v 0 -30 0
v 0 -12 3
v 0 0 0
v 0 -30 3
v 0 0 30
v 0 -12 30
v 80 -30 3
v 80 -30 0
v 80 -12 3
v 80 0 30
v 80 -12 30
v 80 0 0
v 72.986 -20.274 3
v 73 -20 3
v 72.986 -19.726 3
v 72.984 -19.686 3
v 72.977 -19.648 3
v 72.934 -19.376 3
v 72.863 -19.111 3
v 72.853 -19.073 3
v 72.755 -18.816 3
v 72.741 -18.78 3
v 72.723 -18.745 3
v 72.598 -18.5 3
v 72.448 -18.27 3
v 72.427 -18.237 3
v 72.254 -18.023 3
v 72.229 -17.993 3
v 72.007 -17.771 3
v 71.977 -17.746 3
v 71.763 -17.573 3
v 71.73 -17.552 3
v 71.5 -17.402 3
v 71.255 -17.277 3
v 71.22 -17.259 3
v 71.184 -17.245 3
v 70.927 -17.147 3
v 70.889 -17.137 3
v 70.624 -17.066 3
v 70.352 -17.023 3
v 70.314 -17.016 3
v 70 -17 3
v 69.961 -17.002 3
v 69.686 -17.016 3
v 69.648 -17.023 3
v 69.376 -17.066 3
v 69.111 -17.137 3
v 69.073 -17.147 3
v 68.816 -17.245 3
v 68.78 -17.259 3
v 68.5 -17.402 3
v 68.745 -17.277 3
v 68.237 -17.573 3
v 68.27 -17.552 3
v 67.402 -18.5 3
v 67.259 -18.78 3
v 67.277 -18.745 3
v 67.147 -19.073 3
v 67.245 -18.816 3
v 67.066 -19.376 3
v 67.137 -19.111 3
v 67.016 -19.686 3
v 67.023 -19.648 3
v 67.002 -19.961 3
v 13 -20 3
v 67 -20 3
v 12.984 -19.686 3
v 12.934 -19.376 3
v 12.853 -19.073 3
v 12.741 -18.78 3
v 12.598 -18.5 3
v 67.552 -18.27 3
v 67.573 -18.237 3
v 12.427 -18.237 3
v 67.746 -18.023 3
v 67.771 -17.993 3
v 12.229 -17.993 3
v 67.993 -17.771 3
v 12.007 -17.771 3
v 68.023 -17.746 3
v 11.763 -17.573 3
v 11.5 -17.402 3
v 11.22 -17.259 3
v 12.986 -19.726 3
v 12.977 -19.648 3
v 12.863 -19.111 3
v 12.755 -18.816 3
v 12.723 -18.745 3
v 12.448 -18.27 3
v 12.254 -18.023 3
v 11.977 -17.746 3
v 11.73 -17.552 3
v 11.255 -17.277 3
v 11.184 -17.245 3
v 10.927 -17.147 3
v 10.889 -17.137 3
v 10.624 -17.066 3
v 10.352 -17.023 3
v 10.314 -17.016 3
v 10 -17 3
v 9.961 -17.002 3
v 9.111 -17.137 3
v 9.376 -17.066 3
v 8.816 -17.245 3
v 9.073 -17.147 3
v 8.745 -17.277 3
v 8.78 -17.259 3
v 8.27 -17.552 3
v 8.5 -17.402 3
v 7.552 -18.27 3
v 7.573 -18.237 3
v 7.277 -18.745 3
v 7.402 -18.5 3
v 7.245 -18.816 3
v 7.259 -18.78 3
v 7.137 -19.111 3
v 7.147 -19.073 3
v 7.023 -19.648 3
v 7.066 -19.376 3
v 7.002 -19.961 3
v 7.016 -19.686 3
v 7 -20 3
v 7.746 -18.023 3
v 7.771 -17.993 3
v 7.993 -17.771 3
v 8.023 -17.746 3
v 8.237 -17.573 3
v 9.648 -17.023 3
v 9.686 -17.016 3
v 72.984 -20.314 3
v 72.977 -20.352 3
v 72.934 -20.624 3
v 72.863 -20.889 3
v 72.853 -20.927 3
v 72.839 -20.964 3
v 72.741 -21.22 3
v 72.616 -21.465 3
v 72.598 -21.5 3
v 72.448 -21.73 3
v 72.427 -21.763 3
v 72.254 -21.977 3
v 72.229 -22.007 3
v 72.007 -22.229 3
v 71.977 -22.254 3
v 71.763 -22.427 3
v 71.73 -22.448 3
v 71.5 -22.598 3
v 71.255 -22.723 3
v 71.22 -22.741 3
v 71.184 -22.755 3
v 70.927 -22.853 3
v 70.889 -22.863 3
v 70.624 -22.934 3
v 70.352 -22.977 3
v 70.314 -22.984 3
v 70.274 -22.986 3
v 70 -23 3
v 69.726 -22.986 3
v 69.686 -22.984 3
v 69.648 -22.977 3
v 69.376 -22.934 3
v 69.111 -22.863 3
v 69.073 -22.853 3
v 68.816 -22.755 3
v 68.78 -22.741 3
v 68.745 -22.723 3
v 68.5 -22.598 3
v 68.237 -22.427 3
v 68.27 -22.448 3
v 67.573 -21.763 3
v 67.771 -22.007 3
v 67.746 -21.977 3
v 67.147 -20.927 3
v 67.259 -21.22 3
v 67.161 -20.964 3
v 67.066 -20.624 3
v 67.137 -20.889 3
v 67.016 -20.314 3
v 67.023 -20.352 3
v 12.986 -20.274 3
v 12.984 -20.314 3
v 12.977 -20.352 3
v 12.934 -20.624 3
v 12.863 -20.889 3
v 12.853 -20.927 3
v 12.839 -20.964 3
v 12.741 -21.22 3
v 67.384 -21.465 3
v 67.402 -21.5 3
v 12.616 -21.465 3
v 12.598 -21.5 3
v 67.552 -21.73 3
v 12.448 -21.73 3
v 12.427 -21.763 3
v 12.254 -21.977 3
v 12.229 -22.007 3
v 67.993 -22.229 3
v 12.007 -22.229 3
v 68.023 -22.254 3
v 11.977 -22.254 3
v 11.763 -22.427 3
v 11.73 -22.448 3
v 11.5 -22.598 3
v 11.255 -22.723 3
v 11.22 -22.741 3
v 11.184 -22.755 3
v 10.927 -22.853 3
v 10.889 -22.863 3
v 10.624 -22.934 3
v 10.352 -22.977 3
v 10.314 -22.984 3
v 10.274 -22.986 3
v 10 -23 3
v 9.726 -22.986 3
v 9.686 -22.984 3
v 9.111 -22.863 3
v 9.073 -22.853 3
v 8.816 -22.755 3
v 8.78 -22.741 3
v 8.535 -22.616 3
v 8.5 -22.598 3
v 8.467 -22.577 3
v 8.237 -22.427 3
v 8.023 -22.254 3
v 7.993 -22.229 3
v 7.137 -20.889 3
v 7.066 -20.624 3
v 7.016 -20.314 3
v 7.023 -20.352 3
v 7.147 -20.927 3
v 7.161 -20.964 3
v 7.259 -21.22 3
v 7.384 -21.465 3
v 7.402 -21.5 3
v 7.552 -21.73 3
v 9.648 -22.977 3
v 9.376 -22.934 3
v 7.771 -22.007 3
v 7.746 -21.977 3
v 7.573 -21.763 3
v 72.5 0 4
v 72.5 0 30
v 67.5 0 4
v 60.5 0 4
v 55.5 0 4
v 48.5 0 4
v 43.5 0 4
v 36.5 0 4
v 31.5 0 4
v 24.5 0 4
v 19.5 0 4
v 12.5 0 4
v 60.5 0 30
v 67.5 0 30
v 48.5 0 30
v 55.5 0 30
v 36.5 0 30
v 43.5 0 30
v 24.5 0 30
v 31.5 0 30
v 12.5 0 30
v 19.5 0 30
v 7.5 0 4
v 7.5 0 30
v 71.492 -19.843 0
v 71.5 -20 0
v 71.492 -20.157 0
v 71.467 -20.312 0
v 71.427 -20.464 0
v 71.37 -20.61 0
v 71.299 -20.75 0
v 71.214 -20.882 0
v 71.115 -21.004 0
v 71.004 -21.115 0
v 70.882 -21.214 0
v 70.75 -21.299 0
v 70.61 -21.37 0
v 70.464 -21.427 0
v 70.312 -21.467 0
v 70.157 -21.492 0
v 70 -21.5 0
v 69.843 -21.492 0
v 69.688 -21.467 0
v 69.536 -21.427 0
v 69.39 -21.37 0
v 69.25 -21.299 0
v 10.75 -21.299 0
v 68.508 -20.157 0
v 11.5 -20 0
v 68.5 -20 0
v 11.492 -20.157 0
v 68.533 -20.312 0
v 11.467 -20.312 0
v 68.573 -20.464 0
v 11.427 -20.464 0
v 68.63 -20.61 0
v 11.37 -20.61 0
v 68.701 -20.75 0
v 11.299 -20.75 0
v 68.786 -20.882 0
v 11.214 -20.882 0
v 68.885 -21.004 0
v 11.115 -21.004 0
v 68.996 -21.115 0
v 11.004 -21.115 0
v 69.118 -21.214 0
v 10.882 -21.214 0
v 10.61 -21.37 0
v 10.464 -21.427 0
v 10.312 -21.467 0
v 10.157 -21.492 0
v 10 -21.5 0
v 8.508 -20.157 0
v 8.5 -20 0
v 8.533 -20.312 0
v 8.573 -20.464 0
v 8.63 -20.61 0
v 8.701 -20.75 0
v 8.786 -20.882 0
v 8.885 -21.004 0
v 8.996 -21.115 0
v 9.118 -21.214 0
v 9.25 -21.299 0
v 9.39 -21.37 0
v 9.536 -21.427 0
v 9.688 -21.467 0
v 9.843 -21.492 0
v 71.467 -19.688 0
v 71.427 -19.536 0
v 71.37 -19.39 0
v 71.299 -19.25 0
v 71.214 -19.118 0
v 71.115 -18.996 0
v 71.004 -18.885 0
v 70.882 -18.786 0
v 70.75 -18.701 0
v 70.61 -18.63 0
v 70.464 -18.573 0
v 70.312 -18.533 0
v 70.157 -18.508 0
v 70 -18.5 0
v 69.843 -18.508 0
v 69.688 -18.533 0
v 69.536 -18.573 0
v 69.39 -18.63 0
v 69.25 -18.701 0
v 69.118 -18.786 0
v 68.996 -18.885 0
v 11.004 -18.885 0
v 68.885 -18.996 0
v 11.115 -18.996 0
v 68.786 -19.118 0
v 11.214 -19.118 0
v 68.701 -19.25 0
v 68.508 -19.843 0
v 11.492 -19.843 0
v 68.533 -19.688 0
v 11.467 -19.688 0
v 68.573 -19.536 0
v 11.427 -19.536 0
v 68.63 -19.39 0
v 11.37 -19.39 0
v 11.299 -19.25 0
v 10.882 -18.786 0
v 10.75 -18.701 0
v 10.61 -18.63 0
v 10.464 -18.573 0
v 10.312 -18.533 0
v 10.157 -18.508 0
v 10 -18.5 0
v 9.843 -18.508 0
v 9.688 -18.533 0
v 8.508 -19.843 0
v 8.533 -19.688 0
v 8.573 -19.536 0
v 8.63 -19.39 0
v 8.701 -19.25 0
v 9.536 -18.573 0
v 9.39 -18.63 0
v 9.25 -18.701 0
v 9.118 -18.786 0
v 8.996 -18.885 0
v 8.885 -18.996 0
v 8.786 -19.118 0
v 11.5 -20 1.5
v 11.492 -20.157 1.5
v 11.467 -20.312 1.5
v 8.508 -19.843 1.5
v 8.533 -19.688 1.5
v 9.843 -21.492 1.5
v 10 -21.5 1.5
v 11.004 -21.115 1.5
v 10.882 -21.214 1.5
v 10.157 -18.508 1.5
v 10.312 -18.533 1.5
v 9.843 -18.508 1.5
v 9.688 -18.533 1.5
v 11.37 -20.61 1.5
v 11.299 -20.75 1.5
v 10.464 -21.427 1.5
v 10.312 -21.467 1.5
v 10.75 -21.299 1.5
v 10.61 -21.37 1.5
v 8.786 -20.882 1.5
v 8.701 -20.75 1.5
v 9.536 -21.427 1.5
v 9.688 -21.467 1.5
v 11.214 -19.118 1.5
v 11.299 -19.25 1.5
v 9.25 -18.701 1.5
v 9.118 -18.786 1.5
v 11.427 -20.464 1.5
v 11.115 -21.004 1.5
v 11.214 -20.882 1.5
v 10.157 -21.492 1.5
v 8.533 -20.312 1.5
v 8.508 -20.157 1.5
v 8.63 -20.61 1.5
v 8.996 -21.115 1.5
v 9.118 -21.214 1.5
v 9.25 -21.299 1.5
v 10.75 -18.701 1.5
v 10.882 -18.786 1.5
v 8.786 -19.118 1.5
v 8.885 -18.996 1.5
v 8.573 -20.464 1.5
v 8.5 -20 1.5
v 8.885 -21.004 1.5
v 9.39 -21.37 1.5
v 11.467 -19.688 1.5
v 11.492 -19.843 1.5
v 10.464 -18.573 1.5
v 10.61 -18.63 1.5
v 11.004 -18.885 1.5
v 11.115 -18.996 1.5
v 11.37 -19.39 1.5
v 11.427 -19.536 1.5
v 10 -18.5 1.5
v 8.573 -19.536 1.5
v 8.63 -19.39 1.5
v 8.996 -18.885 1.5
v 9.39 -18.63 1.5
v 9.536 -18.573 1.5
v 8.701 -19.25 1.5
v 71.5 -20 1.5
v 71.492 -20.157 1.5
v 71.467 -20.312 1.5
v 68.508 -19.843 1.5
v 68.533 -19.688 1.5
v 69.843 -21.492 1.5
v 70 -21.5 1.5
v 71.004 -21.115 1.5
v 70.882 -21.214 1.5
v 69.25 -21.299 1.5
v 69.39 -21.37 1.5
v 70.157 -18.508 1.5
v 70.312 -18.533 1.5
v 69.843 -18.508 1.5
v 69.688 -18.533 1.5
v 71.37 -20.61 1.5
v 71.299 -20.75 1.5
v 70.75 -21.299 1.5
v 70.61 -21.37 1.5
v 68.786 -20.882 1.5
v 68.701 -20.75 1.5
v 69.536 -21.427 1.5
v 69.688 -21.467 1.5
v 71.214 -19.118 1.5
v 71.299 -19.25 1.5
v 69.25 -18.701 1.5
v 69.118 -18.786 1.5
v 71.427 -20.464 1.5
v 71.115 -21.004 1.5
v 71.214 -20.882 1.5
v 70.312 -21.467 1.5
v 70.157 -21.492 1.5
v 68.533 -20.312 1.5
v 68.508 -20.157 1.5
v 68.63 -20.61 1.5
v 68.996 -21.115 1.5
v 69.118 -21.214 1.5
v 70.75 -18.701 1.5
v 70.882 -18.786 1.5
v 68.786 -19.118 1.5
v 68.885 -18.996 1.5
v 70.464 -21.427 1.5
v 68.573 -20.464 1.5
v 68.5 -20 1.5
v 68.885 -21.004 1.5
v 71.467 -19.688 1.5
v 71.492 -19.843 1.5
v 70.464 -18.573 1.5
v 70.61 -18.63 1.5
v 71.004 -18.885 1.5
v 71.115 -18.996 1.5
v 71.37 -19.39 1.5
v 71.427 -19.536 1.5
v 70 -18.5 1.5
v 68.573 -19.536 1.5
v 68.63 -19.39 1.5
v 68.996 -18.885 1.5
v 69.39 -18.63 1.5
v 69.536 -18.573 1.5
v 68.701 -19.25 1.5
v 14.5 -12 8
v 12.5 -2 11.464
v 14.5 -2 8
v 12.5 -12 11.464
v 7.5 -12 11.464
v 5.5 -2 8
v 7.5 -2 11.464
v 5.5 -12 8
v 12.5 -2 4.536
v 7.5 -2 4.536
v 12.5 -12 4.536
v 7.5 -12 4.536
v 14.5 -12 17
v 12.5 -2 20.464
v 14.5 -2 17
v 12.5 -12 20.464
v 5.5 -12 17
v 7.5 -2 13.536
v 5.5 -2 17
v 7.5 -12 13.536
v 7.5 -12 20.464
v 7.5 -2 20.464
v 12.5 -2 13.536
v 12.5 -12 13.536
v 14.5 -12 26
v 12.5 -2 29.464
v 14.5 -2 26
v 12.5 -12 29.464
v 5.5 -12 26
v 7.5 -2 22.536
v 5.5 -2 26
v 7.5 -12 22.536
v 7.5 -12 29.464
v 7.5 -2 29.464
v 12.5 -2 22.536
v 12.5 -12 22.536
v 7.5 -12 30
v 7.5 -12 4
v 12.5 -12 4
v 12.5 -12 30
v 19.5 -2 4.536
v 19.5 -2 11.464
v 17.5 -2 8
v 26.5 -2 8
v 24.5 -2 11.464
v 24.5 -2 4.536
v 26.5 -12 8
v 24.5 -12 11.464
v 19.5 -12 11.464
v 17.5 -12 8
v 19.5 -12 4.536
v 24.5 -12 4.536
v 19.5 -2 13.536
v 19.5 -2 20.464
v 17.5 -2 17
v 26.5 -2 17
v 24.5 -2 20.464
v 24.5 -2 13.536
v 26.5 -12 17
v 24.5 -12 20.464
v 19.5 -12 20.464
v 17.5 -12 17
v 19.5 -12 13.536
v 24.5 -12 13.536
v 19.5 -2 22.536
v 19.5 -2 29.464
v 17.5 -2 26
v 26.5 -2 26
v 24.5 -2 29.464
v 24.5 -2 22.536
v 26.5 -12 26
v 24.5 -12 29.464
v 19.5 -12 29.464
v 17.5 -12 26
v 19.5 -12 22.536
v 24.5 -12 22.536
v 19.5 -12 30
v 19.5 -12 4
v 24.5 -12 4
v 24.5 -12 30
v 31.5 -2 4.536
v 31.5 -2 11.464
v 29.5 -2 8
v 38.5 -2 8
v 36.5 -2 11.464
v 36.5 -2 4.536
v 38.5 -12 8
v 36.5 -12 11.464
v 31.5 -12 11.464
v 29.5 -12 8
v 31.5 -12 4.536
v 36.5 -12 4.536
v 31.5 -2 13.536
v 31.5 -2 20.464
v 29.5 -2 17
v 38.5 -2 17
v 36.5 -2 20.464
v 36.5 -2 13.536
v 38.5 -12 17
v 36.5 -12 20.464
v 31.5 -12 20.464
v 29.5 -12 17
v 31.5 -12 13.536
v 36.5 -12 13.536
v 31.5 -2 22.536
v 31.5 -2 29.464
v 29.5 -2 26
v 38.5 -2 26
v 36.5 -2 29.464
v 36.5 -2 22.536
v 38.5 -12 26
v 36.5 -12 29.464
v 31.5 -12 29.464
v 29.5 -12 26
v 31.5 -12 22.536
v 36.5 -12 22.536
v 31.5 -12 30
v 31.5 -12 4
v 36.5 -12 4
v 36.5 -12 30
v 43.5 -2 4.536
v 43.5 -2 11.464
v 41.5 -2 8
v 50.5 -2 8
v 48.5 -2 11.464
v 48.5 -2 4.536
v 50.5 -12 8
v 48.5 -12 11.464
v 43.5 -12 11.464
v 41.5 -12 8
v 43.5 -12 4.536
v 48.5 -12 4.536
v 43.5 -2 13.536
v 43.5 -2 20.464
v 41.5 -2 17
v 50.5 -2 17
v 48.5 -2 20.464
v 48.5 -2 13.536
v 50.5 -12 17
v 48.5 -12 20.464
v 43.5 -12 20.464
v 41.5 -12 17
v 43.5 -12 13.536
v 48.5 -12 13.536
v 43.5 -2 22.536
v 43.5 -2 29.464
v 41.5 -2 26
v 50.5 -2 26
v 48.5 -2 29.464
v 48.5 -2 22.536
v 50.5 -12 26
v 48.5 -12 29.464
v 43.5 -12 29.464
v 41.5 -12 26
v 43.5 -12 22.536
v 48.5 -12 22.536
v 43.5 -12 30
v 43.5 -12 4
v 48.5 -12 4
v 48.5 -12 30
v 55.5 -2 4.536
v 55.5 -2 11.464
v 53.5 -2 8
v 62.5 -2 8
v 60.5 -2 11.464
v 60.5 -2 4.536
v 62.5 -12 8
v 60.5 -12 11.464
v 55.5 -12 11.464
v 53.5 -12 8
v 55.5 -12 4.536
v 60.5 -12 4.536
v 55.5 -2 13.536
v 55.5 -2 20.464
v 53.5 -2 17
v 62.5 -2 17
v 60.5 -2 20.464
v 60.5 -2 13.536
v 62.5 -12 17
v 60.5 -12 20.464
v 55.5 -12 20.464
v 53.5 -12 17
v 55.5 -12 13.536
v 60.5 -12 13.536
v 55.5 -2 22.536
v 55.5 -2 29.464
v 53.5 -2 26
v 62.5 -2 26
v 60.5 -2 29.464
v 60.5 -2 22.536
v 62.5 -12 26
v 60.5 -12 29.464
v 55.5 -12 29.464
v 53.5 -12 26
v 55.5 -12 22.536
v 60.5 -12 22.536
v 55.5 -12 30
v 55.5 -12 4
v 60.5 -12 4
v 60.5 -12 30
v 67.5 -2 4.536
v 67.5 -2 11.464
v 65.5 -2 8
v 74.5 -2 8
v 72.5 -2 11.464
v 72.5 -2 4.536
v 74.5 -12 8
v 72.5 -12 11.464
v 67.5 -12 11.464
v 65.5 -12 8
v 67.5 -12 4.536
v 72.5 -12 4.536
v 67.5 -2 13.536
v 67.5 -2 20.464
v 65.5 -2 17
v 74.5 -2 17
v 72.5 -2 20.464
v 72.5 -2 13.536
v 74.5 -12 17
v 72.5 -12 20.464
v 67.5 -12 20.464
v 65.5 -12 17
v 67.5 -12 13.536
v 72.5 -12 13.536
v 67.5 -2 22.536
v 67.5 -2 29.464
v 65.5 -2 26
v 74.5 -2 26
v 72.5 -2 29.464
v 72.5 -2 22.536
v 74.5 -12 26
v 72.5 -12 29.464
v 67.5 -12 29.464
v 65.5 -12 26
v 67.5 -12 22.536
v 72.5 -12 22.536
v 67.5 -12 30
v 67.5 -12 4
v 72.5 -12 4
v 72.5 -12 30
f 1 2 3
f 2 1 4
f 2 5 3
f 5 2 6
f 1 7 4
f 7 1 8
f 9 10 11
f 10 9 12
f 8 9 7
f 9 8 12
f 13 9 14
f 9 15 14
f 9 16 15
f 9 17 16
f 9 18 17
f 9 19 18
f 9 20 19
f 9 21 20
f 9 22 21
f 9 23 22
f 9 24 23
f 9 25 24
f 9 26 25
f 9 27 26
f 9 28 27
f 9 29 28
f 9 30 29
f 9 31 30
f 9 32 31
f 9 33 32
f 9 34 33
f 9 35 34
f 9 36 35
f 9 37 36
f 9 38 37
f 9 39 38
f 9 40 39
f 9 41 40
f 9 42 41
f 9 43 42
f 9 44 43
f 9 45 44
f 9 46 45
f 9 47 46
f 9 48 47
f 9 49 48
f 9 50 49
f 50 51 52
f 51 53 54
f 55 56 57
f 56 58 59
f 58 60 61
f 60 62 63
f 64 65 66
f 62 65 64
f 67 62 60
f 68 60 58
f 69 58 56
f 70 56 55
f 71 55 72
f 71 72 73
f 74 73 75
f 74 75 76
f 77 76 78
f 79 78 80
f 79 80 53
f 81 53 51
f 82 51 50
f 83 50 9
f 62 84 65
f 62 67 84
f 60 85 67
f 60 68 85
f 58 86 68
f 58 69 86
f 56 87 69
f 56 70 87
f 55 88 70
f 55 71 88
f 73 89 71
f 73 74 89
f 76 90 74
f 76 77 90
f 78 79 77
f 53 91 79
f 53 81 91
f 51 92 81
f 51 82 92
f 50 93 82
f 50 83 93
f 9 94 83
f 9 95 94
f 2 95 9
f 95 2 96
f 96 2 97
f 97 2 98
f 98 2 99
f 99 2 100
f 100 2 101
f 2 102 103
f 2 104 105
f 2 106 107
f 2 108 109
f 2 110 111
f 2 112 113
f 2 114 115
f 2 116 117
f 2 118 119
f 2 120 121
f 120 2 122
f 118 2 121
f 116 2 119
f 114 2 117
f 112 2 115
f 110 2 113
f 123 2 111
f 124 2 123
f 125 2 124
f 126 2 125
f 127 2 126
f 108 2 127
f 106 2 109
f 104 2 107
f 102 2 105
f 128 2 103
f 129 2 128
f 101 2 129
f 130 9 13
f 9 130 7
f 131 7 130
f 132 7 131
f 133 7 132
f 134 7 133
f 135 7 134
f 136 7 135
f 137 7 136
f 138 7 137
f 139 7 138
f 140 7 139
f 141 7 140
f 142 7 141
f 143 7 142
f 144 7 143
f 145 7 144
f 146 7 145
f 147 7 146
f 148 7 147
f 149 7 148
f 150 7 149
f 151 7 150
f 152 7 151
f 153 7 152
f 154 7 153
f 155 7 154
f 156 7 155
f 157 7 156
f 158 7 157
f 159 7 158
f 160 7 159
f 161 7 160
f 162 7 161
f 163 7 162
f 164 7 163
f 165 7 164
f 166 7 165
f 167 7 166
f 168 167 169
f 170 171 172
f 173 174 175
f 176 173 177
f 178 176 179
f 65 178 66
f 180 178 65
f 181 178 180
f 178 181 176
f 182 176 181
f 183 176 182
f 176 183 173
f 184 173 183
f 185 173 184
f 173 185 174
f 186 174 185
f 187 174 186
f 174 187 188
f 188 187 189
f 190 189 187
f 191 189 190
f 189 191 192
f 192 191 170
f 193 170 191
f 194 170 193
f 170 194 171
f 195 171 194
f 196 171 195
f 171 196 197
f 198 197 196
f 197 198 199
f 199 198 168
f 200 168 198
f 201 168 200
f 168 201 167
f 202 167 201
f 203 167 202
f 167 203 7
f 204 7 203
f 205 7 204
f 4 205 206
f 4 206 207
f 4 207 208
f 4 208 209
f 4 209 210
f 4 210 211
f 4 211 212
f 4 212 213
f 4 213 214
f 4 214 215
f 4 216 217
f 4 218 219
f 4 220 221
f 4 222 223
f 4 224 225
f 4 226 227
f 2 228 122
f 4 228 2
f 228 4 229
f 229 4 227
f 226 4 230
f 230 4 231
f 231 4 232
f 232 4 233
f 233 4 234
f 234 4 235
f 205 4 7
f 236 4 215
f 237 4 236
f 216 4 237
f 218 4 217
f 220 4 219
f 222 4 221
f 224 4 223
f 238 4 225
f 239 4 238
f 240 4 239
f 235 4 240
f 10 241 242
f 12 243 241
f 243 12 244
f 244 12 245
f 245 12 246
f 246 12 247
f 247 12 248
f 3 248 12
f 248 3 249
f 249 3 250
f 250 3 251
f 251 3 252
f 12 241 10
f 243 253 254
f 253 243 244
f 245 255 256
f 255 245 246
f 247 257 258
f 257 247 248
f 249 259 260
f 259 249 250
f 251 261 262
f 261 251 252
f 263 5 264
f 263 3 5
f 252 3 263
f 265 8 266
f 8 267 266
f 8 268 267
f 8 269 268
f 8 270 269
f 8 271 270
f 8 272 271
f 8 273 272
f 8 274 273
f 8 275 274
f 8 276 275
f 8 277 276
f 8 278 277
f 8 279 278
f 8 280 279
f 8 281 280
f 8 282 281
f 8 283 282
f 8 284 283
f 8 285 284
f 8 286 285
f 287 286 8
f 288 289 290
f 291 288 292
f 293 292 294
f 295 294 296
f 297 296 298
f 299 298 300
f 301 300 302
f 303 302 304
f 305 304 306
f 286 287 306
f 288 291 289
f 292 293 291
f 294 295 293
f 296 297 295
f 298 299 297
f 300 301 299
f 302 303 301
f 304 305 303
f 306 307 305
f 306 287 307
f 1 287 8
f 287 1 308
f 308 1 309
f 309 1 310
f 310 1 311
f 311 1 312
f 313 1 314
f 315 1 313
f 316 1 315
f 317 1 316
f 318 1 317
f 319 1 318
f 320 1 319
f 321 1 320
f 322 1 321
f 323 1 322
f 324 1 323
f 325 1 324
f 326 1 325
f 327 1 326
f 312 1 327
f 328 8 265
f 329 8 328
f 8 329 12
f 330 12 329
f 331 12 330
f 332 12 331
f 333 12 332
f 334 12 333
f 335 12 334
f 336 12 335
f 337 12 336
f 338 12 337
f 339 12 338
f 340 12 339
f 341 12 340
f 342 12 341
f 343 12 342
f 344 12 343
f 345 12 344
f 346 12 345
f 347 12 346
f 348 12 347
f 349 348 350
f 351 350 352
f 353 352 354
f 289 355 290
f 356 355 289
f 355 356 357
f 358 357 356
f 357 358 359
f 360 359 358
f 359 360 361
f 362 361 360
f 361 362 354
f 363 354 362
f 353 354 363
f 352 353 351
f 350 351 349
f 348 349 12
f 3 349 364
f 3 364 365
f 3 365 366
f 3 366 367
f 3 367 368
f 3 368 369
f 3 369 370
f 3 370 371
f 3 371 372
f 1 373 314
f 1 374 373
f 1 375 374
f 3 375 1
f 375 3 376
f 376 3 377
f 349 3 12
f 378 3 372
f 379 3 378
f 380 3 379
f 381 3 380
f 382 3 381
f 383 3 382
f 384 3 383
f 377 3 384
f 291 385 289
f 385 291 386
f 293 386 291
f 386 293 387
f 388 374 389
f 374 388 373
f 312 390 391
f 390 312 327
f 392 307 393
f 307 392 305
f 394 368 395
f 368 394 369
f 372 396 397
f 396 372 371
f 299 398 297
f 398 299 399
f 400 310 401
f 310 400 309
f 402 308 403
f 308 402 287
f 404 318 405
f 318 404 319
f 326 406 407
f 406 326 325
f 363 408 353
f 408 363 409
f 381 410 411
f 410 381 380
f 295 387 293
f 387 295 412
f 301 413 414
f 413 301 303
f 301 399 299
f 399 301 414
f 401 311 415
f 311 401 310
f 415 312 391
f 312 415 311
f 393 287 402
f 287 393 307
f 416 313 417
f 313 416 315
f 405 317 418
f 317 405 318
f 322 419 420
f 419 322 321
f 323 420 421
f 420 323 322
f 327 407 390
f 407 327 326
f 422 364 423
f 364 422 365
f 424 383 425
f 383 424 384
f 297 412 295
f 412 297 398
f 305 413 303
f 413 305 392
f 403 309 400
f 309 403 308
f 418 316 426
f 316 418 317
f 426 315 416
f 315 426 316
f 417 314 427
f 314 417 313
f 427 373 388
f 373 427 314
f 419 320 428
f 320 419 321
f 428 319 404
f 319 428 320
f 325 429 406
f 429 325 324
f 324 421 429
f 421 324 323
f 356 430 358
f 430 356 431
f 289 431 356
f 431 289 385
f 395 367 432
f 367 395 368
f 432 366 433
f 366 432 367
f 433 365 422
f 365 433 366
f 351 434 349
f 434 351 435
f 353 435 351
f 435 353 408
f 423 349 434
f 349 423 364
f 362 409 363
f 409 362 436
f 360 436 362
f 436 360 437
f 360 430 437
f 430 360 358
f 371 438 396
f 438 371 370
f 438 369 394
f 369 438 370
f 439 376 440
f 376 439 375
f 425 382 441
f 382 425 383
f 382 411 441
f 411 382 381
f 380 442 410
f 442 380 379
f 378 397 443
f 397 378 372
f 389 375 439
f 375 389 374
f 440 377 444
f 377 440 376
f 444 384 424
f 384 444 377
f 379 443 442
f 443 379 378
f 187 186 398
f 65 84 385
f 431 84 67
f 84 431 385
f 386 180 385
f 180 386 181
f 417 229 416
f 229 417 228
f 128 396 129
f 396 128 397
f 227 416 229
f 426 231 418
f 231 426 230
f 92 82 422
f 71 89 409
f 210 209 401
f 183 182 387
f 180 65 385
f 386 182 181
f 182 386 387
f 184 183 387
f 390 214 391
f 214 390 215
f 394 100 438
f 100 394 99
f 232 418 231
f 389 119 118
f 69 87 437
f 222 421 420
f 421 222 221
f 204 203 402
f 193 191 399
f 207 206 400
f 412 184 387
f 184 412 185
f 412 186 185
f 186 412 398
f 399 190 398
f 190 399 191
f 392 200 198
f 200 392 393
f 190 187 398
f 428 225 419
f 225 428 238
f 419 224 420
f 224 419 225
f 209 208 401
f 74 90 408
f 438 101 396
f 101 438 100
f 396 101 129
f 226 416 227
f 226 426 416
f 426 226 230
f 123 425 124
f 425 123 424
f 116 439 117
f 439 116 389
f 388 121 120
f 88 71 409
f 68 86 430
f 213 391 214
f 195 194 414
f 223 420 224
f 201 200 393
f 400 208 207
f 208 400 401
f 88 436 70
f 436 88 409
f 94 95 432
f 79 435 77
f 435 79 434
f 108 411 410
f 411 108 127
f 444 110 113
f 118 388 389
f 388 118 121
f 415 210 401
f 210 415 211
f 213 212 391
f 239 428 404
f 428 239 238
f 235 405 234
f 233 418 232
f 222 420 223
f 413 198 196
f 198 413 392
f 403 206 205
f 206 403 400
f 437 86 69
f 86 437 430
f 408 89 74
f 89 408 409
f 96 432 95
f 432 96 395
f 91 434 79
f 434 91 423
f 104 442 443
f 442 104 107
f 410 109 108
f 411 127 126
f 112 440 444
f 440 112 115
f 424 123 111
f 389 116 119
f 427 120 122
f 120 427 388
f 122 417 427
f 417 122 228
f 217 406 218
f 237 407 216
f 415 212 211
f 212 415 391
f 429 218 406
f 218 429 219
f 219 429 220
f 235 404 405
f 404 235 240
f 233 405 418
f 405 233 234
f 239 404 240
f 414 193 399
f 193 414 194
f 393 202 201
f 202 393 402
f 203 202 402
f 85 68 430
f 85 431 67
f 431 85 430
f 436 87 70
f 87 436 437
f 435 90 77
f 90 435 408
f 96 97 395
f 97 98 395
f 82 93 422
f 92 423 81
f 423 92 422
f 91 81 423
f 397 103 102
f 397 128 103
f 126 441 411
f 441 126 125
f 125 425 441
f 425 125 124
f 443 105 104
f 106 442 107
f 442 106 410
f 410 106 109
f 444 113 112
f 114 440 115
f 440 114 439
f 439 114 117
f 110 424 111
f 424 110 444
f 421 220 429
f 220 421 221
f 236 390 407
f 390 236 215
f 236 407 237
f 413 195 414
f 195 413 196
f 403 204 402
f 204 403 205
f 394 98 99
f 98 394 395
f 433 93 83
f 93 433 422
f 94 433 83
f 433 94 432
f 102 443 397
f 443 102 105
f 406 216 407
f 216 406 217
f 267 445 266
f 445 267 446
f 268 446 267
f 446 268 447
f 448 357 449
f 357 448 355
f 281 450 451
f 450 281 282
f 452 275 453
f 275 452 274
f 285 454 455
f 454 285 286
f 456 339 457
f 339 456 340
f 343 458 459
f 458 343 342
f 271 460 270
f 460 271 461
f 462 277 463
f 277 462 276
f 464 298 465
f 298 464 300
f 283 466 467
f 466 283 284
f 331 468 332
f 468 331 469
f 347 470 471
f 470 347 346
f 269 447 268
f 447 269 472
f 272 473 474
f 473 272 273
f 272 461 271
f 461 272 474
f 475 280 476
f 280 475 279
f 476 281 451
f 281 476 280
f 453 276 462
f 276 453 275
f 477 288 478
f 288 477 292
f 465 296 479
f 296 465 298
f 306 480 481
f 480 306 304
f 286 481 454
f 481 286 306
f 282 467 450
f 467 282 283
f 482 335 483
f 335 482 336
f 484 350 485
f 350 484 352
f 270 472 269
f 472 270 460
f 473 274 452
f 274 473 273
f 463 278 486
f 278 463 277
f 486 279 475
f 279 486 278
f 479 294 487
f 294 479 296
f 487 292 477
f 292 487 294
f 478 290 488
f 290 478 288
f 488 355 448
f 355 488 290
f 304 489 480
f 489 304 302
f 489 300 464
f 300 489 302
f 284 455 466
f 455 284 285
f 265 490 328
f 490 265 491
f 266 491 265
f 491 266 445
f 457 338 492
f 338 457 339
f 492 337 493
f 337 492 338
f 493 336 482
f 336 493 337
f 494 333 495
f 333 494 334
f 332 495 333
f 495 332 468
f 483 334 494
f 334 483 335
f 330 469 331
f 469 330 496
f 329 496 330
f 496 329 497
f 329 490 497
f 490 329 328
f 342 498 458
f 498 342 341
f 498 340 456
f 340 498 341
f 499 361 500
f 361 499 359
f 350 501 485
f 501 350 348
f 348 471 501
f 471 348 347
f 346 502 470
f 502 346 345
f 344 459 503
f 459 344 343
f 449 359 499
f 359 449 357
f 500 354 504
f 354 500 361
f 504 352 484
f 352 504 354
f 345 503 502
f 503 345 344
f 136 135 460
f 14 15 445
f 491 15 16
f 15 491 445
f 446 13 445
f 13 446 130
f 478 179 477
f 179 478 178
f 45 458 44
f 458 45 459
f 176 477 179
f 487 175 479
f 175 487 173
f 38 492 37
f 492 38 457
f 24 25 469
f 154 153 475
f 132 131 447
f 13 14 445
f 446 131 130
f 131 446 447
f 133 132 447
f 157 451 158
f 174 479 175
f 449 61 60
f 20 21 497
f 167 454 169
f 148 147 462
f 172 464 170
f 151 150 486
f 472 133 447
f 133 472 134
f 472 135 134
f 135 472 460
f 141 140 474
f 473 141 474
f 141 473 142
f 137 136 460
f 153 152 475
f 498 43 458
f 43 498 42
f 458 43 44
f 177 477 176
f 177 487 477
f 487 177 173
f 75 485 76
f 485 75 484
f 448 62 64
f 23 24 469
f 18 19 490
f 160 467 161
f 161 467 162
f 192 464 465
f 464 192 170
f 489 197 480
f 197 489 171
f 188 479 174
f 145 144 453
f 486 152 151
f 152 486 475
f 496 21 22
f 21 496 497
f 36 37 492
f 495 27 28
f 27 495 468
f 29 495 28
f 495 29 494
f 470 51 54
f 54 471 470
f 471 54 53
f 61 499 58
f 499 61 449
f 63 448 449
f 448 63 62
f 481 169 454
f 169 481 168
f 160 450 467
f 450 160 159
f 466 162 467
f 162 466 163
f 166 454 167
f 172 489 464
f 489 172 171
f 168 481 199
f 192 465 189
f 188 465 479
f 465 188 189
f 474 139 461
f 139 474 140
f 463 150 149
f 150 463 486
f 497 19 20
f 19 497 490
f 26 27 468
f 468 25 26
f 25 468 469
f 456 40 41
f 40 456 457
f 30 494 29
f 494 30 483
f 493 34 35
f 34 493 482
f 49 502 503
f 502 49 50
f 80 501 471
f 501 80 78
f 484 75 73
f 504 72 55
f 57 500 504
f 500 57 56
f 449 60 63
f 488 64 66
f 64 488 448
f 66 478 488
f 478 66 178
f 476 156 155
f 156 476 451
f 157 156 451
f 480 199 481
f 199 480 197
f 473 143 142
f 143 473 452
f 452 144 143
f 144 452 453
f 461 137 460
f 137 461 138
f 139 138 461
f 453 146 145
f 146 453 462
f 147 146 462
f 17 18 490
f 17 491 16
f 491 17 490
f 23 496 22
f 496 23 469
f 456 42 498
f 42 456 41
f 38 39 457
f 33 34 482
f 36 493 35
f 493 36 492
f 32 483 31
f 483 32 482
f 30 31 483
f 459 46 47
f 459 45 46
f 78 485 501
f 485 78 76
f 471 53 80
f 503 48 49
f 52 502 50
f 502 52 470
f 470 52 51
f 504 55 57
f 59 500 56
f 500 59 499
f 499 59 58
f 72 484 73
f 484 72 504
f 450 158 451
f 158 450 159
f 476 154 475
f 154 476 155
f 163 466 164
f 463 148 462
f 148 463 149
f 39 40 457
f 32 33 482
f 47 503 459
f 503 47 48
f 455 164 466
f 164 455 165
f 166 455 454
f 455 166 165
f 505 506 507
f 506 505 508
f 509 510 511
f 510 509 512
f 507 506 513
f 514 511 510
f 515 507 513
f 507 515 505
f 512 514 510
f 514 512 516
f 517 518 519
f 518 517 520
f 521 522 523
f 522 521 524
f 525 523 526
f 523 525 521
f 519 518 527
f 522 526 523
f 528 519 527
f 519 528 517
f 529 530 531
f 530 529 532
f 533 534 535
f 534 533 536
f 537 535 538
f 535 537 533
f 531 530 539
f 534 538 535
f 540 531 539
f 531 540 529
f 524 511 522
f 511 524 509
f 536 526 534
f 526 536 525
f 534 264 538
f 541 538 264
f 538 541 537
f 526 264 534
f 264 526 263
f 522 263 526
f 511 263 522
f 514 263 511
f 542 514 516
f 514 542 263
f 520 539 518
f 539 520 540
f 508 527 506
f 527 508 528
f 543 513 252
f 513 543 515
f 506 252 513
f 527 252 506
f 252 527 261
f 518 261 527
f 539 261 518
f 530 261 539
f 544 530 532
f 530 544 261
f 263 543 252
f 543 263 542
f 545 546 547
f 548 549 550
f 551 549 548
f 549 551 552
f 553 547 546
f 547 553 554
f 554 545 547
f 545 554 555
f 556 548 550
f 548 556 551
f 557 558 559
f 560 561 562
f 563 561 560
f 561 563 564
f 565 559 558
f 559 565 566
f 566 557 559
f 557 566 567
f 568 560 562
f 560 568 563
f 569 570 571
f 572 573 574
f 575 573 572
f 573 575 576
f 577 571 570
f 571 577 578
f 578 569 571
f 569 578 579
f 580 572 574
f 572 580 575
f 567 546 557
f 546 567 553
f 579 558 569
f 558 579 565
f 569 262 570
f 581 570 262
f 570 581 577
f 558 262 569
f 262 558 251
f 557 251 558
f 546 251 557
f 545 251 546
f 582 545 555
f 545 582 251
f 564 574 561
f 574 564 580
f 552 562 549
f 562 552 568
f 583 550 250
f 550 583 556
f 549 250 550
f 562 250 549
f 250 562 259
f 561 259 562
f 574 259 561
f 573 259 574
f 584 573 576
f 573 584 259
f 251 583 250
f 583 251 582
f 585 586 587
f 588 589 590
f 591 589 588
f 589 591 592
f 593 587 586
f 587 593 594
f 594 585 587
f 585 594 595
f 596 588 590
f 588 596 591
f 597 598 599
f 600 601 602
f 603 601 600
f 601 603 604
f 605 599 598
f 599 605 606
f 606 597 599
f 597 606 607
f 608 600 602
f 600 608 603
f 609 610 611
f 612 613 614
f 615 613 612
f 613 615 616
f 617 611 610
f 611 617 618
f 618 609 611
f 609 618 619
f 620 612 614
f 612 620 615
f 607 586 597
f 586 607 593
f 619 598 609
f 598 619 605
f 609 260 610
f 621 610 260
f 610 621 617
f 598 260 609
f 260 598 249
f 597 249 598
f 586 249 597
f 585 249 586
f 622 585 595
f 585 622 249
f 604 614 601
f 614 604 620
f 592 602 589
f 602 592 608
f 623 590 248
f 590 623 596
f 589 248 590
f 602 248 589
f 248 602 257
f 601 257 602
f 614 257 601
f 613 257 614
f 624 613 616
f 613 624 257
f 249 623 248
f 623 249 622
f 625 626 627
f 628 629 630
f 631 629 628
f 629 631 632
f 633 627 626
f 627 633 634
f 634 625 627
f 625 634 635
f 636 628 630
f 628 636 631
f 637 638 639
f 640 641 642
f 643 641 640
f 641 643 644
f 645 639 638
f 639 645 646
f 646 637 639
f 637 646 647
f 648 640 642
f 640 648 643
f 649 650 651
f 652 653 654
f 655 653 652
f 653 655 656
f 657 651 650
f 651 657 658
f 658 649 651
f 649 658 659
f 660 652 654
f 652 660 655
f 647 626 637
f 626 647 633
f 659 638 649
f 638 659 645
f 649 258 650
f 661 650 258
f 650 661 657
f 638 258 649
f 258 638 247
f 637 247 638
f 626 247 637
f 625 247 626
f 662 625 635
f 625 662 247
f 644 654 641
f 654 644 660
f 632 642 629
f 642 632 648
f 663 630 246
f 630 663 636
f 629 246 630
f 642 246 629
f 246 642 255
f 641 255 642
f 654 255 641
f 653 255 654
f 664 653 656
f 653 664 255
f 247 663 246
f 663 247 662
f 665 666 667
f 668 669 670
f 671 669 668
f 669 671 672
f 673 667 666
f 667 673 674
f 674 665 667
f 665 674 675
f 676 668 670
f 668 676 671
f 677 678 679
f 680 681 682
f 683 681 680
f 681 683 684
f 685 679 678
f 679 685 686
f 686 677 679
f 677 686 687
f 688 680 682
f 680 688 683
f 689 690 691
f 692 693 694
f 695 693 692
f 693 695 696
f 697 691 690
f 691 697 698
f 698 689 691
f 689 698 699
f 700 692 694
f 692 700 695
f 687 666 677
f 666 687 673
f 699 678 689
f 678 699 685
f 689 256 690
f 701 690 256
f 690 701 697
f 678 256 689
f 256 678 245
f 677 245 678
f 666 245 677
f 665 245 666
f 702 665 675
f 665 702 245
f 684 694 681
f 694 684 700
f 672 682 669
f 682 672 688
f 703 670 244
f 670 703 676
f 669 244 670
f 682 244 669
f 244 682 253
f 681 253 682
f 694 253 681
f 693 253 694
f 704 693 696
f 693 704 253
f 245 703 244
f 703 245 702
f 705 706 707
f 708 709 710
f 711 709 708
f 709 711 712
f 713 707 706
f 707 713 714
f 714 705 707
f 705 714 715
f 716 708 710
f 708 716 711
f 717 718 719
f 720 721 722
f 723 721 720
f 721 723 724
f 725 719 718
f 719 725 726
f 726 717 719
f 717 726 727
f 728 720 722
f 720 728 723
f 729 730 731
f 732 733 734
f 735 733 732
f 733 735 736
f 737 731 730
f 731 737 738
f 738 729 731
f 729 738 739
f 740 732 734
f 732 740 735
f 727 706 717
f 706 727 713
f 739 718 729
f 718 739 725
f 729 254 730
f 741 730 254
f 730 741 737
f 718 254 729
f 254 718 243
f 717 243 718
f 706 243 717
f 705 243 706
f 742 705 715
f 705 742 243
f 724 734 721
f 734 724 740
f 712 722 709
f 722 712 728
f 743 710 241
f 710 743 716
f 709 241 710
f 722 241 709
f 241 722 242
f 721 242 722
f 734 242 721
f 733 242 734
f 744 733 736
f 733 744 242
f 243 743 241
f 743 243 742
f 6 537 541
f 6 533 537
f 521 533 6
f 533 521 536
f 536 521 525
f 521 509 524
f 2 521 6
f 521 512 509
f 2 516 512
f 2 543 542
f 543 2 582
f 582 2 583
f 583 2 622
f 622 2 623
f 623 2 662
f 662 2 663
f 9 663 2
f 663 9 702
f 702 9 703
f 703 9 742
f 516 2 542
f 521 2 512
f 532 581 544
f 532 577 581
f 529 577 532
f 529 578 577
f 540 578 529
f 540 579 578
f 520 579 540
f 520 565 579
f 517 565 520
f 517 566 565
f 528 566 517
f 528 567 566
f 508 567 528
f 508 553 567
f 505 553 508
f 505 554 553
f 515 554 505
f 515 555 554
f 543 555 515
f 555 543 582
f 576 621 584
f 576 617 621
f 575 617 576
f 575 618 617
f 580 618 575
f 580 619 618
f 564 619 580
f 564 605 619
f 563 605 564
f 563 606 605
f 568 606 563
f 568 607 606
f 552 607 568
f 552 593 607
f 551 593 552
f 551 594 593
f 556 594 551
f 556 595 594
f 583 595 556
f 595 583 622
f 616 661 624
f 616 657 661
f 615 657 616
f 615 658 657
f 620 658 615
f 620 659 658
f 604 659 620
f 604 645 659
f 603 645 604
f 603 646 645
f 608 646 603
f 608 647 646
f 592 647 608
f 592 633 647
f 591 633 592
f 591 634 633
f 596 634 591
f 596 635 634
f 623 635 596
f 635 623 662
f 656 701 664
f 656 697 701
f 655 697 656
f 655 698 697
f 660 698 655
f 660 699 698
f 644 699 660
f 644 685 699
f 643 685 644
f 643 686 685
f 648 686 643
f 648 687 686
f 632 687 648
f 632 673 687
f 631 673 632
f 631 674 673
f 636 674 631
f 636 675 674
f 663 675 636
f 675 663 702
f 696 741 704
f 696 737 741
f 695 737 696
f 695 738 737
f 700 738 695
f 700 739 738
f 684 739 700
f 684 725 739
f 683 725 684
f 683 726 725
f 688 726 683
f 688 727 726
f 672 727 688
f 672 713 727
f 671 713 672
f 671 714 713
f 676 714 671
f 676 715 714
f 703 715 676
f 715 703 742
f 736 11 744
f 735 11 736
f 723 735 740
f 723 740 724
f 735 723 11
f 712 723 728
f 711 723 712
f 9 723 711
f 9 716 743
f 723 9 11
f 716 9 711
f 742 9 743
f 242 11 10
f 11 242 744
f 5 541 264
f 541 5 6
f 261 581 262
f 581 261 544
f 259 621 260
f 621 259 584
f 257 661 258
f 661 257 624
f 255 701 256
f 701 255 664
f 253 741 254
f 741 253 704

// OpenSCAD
$fn = 60;

rotate([90, 0, 0]) {
 difference () {
   cube([80, 3, 30]);
   translate([10, 4, 20]) rotate([90, 0, 0]) cylinder(5, r=1.5);
   translate([10, 1.5, 20]) rotate([-90, 0, 0]) cylinder(2, r1=1.5, r2=3.5);
   translate([70, 4, 20]) rotate([90, 0, 0]) cylinder(5, r=1.5);
   translate([70, 1.5, 20]) rotate([-90, 0, 0]) cylinder(2, r1=1.5, r2=3.5);
 

 
   }
 
difference () {
  translate([0, 0, 0]) cube([80, 30, 12]);
  offset = 10;
  
  for (i = [0:5]) {
translate([offset + 12*i, 8, 2])  cylinder(11, r=4.5, $fn=6);
translate([offset + 12*i, 17, 2])  cylinder(11, r=4.5, $fn=6);
translate([offset + 12*i, 26, 2])  cylinder(11, r=4.5, $fn=6);
translate([offset-2.5 + 12*i, 4, -1]) cube([5, 27, 14]);
  }


}




}
